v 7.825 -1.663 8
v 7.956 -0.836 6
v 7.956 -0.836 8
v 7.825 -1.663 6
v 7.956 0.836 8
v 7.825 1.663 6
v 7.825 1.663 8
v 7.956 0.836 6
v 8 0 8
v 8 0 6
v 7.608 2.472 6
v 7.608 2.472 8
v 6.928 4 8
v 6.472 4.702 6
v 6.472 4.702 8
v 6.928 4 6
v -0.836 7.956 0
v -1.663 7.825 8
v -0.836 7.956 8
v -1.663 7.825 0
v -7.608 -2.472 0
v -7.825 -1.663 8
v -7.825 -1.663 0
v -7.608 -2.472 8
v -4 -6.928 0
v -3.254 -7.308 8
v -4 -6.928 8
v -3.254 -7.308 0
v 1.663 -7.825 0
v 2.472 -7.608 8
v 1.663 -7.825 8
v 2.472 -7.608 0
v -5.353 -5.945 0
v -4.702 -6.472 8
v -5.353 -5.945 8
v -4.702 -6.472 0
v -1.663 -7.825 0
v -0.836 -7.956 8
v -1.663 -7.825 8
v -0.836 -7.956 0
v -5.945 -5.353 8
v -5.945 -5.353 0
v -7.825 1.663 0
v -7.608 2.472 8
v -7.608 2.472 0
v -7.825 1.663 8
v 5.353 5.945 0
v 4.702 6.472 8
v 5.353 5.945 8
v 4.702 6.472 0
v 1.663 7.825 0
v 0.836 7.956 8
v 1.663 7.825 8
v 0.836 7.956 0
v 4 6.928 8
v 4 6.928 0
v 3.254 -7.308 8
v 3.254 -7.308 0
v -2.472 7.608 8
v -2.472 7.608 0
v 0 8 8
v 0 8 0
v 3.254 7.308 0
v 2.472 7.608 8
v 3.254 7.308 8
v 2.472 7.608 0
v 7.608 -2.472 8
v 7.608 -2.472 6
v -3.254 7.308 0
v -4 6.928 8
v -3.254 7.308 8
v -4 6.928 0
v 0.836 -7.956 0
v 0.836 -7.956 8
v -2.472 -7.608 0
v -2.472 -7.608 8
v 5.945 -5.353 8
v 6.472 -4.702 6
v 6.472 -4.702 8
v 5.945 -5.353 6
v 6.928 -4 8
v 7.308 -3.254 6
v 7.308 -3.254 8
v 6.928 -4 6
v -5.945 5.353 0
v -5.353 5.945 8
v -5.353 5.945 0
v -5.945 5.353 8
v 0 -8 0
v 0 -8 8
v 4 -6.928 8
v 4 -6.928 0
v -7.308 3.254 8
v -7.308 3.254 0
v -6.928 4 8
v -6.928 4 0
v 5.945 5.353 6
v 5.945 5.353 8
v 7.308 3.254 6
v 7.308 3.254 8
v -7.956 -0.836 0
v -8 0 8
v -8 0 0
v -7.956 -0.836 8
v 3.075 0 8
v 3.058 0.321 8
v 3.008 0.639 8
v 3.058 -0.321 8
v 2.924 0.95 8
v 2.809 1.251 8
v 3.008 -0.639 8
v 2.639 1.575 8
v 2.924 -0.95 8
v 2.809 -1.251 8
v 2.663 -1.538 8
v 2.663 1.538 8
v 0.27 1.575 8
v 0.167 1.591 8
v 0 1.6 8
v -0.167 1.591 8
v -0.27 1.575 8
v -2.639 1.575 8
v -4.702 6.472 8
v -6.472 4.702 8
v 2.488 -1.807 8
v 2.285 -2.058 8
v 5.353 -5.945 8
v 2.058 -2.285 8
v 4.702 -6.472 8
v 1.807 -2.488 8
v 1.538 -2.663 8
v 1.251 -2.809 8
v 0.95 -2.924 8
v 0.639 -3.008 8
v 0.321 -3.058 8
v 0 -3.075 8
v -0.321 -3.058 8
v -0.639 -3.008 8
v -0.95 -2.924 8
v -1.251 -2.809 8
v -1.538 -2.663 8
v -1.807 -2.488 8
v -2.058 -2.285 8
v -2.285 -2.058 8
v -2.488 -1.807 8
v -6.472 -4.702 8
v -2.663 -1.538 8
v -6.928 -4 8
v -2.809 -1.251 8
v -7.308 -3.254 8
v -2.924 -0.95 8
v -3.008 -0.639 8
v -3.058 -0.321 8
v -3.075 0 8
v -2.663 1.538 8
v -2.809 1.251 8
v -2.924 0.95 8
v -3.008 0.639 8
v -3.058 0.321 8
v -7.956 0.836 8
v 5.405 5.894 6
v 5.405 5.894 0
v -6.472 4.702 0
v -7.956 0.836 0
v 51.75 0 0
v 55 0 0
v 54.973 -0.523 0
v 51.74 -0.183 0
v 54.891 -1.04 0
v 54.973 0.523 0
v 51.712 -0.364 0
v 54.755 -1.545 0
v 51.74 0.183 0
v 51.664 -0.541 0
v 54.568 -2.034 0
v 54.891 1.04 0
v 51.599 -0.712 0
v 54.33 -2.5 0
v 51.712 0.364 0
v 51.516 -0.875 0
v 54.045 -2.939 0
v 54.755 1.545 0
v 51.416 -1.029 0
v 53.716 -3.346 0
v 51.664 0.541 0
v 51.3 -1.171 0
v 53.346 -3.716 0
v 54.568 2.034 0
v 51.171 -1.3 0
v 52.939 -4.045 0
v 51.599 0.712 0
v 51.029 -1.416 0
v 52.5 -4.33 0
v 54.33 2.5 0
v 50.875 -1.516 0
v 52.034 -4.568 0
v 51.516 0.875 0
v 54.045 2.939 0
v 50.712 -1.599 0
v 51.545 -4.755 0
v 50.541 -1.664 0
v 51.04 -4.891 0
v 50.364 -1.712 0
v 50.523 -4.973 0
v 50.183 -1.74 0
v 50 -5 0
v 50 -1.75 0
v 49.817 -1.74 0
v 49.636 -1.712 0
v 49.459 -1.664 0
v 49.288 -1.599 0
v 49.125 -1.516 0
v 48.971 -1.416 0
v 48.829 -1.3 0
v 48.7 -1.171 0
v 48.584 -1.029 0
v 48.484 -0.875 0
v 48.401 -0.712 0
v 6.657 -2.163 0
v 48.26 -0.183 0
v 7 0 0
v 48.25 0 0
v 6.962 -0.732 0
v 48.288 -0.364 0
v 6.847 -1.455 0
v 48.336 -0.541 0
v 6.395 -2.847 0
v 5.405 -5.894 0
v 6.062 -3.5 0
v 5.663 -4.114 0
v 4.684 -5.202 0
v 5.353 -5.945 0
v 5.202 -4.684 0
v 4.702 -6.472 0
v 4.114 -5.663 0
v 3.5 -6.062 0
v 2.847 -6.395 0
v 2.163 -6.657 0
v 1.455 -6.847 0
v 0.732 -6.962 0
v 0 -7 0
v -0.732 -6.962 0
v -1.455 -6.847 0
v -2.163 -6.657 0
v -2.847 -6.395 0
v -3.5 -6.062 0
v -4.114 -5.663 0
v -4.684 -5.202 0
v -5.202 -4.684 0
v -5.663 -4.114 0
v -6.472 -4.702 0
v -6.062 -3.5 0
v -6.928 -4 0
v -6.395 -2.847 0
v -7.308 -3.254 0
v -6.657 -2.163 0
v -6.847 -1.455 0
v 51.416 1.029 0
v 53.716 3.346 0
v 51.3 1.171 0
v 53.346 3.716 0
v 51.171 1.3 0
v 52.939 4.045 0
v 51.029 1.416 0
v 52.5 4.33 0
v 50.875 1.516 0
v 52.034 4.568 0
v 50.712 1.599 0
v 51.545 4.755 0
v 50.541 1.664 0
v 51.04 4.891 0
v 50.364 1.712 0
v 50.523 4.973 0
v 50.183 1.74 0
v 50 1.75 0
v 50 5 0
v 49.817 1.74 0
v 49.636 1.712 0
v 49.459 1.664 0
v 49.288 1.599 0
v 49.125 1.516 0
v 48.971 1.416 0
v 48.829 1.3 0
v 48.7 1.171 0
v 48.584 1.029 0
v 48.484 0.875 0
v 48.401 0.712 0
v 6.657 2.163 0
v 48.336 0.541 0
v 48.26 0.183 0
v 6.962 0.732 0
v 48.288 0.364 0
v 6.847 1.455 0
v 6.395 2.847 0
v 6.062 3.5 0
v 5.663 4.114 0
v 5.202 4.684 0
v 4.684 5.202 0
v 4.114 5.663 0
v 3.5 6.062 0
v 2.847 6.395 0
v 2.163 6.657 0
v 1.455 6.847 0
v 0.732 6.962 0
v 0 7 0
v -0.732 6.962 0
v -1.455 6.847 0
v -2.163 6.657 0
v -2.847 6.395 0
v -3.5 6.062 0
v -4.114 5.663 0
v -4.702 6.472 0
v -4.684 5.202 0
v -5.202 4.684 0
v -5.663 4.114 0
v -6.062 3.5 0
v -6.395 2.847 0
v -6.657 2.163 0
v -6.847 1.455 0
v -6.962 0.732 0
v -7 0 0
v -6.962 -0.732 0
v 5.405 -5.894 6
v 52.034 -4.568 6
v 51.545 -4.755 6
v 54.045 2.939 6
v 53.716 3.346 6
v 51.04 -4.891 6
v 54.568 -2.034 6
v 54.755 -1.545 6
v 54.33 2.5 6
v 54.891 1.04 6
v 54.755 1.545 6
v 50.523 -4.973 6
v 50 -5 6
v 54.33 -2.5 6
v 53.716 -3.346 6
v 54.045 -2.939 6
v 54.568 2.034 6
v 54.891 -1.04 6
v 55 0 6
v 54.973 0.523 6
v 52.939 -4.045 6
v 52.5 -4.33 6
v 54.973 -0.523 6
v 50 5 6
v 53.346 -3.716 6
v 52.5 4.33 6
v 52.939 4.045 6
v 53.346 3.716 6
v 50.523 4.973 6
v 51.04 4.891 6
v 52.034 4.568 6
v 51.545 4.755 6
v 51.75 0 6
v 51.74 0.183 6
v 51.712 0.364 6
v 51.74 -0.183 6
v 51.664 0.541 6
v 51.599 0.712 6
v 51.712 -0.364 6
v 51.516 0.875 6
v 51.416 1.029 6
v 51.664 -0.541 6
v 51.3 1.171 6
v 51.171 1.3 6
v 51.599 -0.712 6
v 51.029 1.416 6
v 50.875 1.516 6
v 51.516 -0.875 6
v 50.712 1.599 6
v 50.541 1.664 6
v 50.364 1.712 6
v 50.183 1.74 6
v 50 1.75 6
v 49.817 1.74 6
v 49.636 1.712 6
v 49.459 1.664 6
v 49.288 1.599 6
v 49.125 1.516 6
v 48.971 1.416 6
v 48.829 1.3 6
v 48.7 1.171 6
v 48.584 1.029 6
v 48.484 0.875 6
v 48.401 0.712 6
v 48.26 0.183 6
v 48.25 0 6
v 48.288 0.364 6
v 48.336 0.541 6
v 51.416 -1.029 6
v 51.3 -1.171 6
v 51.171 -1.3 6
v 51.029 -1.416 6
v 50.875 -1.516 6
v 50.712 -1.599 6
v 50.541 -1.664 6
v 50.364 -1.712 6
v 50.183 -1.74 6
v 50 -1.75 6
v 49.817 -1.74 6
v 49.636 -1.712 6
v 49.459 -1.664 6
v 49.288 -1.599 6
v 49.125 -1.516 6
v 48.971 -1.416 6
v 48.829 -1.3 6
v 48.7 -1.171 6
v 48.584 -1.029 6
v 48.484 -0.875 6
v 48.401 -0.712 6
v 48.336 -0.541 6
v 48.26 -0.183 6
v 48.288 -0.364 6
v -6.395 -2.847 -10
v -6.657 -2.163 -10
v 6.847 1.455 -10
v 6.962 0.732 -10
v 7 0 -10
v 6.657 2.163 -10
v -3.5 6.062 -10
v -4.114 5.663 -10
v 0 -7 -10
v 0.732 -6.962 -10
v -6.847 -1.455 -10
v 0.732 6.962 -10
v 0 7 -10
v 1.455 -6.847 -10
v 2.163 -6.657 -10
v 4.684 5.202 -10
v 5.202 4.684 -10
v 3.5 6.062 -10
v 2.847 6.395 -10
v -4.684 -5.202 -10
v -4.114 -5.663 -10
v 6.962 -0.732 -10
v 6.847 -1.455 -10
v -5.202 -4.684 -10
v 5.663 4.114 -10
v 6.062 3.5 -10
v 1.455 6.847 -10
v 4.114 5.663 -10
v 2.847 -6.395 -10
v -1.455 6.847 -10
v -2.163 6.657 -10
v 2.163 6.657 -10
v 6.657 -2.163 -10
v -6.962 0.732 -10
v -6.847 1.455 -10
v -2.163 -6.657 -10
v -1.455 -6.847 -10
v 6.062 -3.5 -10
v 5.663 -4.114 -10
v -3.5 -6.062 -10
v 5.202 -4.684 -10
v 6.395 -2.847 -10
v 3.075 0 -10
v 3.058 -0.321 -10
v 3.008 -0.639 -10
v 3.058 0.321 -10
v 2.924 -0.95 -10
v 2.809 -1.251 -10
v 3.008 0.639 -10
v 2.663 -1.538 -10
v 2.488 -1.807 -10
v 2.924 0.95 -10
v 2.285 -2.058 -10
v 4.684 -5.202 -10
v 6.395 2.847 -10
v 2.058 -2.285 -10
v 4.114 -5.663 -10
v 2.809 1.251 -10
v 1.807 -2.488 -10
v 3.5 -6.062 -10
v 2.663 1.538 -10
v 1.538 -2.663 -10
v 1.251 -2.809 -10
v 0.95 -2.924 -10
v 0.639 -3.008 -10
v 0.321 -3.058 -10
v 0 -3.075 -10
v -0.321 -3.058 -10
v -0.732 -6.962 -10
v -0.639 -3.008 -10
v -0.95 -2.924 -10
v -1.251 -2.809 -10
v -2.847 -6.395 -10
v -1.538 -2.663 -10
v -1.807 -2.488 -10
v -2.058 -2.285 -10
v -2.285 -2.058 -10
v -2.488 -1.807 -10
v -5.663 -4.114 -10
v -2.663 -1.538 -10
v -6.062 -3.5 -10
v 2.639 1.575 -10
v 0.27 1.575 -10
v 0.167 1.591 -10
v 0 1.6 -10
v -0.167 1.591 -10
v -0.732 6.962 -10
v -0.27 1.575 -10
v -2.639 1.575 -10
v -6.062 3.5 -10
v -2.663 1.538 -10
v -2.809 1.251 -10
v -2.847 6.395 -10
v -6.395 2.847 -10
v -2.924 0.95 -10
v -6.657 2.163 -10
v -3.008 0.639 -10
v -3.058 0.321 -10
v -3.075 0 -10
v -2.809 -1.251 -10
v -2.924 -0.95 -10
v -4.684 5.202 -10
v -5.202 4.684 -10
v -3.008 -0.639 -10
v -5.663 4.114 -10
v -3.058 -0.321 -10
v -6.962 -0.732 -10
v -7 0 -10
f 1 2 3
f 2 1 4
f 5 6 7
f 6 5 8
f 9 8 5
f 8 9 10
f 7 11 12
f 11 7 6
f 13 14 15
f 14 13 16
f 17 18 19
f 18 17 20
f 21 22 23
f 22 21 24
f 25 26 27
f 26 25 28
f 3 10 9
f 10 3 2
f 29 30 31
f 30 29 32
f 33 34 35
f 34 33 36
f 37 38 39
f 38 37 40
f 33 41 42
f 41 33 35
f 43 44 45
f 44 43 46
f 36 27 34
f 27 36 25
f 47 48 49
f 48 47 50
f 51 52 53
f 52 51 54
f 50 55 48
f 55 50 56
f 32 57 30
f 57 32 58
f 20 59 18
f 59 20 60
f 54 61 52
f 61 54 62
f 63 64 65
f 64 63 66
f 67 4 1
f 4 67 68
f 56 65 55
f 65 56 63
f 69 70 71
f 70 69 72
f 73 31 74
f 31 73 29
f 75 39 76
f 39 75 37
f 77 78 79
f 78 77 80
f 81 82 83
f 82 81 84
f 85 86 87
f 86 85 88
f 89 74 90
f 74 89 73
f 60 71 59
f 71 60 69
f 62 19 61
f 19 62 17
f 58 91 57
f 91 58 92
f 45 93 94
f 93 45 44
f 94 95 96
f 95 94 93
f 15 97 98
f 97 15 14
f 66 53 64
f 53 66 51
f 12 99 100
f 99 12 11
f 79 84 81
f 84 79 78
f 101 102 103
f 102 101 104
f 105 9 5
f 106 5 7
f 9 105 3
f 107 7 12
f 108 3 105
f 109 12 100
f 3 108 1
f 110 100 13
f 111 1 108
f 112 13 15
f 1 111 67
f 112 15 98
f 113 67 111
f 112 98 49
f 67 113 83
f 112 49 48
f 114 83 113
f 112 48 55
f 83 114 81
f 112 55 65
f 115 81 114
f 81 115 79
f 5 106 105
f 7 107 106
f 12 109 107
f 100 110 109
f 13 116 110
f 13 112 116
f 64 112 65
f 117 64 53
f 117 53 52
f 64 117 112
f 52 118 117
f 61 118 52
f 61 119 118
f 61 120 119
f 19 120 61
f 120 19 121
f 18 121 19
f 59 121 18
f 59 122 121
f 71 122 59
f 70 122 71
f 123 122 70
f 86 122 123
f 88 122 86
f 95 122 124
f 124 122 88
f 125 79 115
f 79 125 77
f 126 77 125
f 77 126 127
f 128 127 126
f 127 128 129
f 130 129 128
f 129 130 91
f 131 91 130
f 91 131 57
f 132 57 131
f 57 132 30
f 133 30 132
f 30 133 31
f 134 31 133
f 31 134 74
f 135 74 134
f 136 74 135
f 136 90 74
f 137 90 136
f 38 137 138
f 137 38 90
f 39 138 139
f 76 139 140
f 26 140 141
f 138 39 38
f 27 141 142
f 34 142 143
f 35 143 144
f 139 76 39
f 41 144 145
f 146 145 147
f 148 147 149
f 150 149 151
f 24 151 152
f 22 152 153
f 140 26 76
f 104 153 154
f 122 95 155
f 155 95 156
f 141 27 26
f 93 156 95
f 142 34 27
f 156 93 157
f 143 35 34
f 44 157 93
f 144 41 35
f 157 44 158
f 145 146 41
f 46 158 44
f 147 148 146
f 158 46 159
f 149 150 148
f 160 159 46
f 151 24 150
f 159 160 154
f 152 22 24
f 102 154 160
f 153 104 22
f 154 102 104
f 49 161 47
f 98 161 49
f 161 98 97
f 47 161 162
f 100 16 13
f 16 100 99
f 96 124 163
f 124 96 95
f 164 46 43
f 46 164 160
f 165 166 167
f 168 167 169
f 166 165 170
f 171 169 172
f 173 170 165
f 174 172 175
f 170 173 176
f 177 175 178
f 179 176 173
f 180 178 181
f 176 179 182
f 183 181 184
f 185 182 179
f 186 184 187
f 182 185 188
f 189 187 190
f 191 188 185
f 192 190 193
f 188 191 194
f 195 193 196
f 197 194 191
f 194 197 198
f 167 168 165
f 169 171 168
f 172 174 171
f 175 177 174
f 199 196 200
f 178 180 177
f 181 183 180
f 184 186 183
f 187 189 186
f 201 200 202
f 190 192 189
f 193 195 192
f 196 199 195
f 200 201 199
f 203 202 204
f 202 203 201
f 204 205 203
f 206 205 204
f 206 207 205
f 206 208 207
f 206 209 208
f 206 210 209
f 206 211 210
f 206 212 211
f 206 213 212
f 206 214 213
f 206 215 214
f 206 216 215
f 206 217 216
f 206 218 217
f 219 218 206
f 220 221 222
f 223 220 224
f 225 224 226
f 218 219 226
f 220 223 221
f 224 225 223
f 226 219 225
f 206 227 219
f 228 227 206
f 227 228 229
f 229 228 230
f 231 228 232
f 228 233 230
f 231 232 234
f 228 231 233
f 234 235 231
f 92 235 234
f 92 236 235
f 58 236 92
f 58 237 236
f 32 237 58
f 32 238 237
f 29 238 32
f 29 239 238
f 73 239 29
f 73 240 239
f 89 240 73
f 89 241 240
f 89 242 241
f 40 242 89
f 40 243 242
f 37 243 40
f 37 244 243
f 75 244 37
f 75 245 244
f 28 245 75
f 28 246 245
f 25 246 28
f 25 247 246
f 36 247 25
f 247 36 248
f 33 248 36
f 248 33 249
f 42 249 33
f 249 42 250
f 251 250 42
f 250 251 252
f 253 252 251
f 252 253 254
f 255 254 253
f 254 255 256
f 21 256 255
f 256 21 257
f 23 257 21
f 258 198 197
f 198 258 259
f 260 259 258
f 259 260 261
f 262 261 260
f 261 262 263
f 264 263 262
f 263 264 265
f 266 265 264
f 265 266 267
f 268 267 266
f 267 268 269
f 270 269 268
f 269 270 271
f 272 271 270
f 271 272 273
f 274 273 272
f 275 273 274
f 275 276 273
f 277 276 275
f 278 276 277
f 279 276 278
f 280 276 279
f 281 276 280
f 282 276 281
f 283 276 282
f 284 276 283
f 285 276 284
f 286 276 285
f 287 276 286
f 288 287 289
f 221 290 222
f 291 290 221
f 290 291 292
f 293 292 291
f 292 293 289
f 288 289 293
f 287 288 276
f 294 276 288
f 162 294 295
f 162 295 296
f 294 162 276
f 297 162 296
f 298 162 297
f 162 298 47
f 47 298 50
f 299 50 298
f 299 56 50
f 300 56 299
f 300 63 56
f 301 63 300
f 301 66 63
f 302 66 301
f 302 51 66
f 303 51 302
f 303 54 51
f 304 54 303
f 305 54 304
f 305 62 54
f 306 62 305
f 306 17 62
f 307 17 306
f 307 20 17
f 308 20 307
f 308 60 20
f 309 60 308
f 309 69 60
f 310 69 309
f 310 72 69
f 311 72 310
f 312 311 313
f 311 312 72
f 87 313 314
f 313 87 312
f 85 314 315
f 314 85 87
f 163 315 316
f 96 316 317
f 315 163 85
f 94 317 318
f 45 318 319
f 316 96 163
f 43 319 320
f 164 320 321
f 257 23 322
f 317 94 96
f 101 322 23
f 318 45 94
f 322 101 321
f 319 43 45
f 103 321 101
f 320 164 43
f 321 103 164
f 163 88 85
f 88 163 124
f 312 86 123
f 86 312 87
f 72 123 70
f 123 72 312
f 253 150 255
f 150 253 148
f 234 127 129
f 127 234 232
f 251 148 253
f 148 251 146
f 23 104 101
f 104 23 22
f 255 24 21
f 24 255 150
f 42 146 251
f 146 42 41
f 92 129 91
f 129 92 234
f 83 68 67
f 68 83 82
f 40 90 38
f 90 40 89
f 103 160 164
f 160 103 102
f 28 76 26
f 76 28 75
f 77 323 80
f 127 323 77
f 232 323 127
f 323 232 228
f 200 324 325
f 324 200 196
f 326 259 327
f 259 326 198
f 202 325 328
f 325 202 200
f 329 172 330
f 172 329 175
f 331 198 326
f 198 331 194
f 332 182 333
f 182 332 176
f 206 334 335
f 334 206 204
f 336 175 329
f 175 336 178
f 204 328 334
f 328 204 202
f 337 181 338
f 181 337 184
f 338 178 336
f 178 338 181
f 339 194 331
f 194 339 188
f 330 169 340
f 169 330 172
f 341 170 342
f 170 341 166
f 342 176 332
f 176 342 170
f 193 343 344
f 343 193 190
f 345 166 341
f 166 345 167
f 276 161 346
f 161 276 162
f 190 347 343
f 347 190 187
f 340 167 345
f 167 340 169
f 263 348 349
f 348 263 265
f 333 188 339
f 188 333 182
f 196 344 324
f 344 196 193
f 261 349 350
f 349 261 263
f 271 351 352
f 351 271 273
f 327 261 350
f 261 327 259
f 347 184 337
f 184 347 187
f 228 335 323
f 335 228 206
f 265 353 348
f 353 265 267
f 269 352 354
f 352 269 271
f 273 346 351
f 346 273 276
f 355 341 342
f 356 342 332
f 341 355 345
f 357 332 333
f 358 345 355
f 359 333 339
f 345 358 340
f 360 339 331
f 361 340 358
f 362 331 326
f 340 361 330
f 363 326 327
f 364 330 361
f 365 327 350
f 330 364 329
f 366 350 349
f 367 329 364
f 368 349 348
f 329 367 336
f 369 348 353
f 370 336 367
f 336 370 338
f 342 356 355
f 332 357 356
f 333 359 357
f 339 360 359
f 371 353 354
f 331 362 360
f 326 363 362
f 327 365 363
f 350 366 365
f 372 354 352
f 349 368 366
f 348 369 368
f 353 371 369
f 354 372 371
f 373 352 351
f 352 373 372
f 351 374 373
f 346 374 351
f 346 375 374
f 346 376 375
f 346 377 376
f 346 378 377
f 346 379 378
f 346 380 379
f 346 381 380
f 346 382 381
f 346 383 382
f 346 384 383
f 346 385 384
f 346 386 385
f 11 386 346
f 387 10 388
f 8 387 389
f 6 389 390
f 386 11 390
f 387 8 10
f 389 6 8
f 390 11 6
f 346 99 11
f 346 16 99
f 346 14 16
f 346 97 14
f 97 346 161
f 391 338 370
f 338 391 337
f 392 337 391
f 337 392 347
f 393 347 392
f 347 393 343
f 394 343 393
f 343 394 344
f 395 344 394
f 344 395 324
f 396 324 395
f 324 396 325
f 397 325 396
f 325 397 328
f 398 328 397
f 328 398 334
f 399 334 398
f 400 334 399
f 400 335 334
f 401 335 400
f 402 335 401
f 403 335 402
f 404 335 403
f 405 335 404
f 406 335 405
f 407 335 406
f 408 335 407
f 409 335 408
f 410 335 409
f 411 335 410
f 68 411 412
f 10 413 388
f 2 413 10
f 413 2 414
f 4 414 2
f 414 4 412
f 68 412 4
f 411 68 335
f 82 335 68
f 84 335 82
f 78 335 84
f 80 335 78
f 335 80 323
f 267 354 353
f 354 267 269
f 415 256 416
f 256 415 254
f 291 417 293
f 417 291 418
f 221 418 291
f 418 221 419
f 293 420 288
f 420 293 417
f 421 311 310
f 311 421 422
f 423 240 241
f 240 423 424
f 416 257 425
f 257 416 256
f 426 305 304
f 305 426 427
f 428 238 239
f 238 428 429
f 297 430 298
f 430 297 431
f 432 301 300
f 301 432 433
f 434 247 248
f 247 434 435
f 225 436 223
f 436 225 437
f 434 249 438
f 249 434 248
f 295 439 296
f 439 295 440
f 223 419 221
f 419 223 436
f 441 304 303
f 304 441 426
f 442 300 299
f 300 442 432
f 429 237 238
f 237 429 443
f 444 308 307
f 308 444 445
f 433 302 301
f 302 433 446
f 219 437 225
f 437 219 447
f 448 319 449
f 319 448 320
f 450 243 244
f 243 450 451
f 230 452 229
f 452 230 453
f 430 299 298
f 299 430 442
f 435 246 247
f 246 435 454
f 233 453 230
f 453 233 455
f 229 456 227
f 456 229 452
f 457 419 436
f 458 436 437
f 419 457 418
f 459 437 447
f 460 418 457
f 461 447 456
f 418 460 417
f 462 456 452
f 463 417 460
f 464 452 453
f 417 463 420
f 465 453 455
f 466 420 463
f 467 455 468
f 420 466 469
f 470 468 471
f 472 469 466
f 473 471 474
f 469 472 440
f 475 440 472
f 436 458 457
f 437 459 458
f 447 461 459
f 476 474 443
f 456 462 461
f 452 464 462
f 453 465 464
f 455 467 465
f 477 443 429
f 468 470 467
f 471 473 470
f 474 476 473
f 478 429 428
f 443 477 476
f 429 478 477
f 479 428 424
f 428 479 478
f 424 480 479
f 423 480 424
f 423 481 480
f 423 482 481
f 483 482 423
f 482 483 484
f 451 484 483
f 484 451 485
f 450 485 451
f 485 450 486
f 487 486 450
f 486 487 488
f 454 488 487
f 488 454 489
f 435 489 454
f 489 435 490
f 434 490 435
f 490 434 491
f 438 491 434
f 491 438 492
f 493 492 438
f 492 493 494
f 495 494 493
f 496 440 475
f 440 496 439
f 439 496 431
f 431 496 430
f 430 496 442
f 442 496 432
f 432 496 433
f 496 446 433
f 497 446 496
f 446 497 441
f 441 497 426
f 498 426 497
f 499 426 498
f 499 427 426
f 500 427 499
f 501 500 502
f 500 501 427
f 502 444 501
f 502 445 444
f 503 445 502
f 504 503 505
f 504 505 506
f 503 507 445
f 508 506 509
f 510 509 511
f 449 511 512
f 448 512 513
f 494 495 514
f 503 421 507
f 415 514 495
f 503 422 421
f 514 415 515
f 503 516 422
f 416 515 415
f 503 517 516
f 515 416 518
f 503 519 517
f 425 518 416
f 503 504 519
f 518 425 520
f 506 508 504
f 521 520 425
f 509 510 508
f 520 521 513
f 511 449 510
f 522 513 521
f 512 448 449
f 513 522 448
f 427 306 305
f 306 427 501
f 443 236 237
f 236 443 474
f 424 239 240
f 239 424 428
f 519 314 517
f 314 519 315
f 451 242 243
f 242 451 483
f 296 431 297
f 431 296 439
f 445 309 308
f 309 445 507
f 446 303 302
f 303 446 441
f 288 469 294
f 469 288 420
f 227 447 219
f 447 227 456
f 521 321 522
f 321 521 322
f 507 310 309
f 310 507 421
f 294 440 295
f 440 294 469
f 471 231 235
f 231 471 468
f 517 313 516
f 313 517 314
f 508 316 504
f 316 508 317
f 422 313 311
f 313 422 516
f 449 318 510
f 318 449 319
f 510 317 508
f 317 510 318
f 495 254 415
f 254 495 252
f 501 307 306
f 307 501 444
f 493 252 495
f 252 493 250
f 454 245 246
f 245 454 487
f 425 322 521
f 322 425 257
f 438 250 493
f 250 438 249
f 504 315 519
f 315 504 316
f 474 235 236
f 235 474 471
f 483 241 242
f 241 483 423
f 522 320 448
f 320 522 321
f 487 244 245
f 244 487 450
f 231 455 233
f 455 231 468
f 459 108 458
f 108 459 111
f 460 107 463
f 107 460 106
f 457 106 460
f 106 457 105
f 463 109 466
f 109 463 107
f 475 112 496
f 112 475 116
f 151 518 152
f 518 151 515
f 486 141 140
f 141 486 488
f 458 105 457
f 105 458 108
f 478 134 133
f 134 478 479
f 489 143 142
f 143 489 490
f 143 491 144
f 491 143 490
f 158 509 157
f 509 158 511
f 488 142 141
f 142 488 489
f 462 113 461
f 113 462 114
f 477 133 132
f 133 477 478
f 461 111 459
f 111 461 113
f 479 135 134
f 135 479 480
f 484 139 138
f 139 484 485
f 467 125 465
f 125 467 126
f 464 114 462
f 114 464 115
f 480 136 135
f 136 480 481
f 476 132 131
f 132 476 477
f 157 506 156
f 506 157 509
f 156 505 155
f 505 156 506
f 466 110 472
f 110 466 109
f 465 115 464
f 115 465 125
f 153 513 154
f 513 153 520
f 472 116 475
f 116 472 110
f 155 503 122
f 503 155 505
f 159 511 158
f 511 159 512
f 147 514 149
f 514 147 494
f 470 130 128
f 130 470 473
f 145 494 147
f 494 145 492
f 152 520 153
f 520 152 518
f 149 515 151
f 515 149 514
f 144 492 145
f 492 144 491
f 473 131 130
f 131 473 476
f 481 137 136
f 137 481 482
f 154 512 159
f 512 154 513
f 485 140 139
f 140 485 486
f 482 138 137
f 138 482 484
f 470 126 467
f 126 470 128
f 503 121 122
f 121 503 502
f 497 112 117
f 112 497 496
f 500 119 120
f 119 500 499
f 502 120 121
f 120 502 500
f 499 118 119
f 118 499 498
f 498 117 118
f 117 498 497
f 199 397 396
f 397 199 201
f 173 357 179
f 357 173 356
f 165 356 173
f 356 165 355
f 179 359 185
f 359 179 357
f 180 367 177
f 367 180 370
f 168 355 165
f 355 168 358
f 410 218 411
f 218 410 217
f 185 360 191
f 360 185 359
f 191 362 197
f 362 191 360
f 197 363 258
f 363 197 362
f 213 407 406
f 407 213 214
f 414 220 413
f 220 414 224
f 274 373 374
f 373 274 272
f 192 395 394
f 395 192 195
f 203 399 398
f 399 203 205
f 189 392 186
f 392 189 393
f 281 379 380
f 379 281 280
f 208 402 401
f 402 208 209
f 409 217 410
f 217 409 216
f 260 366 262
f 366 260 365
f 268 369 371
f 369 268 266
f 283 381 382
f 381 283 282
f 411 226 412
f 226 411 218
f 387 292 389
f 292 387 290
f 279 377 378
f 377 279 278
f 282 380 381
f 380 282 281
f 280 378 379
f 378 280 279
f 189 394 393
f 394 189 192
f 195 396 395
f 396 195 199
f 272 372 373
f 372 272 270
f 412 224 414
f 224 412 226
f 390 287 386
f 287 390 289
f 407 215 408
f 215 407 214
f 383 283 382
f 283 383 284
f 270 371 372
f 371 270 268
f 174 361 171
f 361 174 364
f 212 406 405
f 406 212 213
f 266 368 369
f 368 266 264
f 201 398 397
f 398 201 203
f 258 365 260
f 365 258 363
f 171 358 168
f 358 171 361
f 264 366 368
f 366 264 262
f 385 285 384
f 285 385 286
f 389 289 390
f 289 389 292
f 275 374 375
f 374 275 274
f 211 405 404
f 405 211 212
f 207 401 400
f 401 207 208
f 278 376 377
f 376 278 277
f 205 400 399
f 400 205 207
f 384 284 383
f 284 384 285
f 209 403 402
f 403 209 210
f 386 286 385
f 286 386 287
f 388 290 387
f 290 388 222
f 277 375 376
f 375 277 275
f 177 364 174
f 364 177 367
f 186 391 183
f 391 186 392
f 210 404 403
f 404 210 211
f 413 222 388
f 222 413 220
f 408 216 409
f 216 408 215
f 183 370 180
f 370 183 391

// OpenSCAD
// file: common.scad
// common.scad — Shared dimensions for FilamentFixer 3D printed parts
// All units in mm.

// --- MG996R Servo Dimensions ---
servo_body_w = 20.0;     // width (side to side)
servo_body_l = 40.7;     // length (front to back)
servo_body_h = 36.5;     // height (bottom to mounting tab top)
servo_tab_w  = 54.5;     // total width across mounting tabs
servo_tab_h  = 2.5;      // tab thickness
servo_tab_y  = 27.0;     // tab distance from bottom of servo
servo_shaft_offset = 10.0; // shaft center from front face
servo_shaft_dia = 6.0;   // output shaft diameter
servo_spline_dia = 5.8;  // 25T spline OD
servo_hole_dia = 4.5;    // mounting screw hole diameter (M4)
servo_hole_spacing_w = 49.0; // hole center to center (width)
servo_hole_spacing_l = 10.0; // hole center to center (length, front-back)
servo_total_h = 42.9;    // total height including shaft nub

// --- Print Tolerances ---
tol = 0.3;               // general clearance tolerance
tol_tight = 0.15;        // tight fit tolerance

// --- Fastener Sizes ---
m3_hole = 3.2;
m3_head = 5.8;
m3_insert = 4.2;         // heat-set insert hole
m4_hole = 4.3;
m4_head = 7.2;

// --- Filament ---
filament_dia = 1.75;     // standard filament diameter

// --- Potentiometer (typical 16mm panel-mount rotary pot) ---
pot_body_dia = 16.0;     // pot body diameter
pot_shaft_dia = 6.0;     // D-shaft diameter (round part)
pot_shaft_flat = 4.5;    // D-shaft flat-to-round distance
pot_shaft_len = 15.0;    // shaft length above body
pot_bushing_dia = 7.2;   // threaded bushing OD (panel mount hole)
pot_bushing_len = 9.0;   // bushing length
pot_body_h = 10.0;       // body height (below bushing)
pot_tab_w = 3.0;         // anti-rotation tab width
pot_tab_depth = 2.0;     // anti-rotation tab slot depth

// --- D-shaft profile (matches pot shaft) ---
dshaft_dia = 6.0;        // round diameter
dshaft_flat = 4.5;       // flat-to-round distance (D cut depth)
dshaft_len = 10.0;       // length extending below arm hub

// --- Reed switch (glass body, typical) ---
reed_body_l = 14.0;      // glass body length
reed_body_dia = 2.5;     // glass body diameter
reed_lead_dia = 0.5;     // lead wire diameter
reed_mount_id = 3.0;     // clip inner diameter (holds reed body)

$fn = 60;
// main file
// tension_arm.scad — Tension arm that attaches to Servo1
// Shorter arm that anchors the other end of the spring.
// Servo1 holds this arm locked during printing to set spring tension.
// D-shaft coupling at the base for potentiometer feedback.

include <common.scad>

// --- Arm Parameters ---
arm_length = 50;            // shorter than feed arm
arm_width = 12;
arm_thickness = 6;
hub_dia = 16;
hub_height = 8;
horn_screw_dia = m3_hole;

// Spring anchor at the tip
spring_hole_dia = 3.5;      // same as feed arm spring hole

// D-shaft bore (couples to potentiometer shaft below base)
dshaft_bore_dia = dshaft_dia + tol_tight;
dshaft_bore_flat = dshaft_flat + tol_tight;

// --- D-shaft profile module ---
module d_shaft_bore(dia, flat, depth) {
    intersection() {
        cylinder(d=dia, h=depth);
        translate([-(dia/2), -(dia/2), 0])
            cube([dia, flat, depth]);
    }
    difference() {
        cylinder(d=dia, h=depth);
        translate([-(dia/2), flat - dia/2, -0.1])
            cube([dia, dia, depth + 0.2]);
    }
}

module tension_arm() {
    difference() {
        union() {
            // Hub
            cylinder(d=hub_dia, h=hub_height);

            // Arm body
            hull() {
                translate([0, -arm_width/2, 0])
                    cube([0.1, arm_width, arm_thickness]);
                translate([arm_length, 0, 0])
                    cylinder(d=10, h=arm_thickness);
            }

            // Tip boss
            translate([arm_length, 0, 0])
                cylinder(d=10, h=arm_thickness);

            // D-shaft extension below hub
            translate([0, 0, -dshaft_len])
                cylinder(d=hub_dia - 2, h=dshaft_len);
        }

        // D-shaft bore (through entire hub + extension)
        translate([0, 0, -dshaft_len - 0.1])
            d_shaft_bore(dshaft_bore_dia, dshaft_bore_flat,
                         hub_height + dshaft_len + 0.2);

        // Horn screw hole
        translate([0, 0, -dshaft_len - 0.1])
            cylinder(d=horn_screw_dia, h=hub_height + dshaft_len + 1);

        // Spring anchor hole at tip
        translate([arm_length, 0, -0.1])
            cylinder(d=spring_hole_dia, h=arm_thickness + 1);
    }
}

tension_arm();

echo("=== Tension Arm ===");
echo(str("Length: ", arm_length, " mm"));
echo(str("D-shaft bore: ", dshaft_bore_dia, " mm"));
